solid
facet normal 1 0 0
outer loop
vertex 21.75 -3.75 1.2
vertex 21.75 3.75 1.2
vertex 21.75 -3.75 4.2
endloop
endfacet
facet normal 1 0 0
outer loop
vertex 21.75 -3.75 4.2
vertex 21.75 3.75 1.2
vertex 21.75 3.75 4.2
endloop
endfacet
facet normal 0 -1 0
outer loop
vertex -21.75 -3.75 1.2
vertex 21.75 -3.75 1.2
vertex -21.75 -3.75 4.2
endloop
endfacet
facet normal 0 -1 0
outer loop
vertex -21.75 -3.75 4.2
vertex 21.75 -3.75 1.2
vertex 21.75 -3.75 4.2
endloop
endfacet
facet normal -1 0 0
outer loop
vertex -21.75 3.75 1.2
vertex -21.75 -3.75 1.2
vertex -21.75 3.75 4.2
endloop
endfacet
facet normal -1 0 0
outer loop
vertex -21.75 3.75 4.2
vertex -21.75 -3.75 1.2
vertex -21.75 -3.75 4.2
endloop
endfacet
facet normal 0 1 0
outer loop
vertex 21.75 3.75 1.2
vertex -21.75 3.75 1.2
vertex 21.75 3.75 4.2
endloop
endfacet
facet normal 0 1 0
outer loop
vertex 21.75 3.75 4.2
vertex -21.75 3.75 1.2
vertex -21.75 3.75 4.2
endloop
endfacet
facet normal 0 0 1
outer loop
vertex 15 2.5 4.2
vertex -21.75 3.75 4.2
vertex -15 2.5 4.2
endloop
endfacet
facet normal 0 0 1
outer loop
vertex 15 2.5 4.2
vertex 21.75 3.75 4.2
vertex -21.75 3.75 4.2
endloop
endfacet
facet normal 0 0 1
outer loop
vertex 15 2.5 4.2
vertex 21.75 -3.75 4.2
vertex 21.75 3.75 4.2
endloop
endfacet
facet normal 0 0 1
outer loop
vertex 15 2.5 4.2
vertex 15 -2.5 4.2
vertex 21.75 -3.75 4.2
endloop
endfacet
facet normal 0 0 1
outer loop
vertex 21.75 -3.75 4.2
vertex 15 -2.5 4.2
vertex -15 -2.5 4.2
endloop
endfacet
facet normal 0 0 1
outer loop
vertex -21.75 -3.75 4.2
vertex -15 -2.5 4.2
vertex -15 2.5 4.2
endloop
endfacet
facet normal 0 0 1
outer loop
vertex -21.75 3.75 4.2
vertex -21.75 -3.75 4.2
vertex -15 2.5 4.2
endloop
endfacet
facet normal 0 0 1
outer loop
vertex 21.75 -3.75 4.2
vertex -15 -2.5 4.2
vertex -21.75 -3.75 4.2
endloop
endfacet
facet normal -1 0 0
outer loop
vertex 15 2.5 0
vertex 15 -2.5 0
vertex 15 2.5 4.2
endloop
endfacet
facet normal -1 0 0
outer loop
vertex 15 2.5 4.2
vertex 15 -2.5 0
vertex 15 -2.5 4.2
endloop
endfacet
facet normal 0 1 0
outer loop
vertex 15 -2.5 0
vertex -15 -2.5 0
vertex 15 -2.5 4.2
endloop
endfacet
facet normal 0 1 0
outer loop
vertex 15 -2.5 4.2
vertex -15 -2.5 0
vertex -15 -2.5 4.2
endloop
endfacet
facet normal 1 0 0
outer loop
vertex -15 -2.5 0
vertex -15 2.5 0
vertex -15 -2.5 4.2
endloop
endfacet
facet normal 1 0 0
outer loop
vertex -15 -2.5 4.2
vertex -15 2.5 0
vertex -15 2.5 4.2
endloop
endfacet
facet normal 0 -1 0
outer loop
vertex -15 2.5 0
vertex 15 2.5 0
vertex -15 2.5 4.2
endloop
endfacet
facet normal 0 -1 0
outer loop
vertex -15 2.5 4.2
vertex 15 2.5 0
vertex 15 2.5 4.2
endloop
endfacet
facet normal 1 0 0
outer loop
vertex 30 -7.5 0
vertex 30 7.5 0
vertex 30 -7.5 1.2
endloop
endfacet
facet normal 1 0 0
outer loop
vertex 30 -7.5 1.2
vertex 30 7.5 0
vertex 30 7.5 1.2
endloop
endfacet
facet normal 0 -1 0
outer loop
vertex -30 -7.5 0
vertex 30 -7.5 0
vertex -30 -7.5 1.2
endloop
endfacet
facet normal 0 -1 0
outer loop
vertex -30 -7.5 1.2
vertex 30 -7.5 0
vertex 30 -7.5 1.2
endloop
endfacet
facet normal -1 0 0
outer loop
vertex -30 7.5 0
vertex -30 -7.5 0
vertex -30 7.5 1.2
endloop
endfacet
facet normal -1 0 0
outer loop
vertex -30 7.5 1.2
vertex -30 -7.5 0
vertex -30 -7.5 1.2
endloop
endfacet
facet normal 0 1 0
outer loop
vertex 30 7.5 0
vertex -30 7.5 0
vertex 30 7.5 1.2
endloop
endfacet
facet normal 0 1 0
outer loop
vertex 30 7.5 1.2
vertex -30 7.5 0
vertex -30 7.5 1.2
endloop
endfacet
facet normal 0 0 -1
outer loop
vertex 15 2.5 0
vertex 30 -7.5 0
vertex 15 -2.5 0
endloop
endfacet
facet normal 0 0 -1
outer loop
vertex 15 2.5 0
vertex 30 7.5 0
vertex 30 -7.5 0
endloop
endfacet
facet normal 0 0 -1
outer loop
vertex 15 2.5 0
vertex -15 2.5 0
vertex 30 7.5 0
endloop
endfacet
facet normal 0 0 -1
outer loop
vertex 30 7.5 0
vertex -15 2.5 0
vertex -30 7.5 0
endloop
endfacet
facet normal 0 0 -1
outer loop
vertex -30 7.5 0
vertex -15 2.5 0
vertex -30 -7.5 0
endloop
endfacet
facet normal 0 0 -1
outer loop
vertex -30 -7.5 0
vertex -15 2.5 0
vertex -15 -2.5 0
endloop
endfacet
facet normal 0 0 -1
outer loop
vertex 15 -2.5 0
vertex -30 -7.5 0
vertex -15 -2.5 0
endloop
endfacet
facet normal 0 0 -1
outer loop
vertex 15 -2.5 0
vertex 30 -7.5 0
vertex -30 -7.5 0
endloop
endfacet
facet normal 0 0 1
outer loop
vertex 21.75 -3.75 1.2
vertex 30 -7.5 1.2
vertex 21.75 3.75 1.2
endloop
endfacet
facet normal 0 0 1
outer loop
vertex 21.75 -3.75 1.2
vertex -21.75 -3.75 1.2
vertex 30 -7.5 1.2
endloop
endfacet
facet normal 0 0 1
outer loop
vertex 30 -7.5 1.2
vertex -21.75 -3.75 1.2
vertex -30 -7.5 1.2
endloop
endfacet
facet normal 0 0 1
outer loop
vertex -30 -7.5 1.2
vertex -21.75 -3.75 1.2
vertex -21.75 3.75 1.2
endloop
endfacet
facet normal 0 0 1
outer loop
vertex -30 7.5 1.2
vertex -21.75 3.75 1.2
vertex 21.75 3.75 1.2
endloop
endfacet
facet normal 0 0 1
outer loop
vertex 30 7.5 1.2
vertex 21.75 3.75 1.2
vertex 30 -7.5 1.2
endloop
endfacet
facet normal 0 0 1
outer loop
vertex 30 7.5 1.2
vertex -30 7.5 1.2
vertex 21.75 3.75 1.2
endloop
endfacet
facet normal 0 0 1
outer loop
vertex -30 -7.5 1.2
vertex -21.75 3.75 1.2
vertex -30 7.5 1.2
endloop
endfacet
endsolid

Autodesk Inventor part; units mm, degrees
ref_plane "YZ Plane" through (0, 0, 0) normal (1, 0, 0) x (0, 1, 0)
ref_plane "XZ Plane" through (0, 0, 0) normal (0, 1, 0) x (-1, 0, 0)
ref_plane "XY Plane" through (0, 0, 0) normal (0, 0, 1) x (1, 0, 0)
sketch "Sketch1" plane through (0, 0, 0) normal (0, 0, 1) x (1, 0, 0)
  line L0 (-30, 7.5) -> (30, 7.5)
  line L1 (30, 7.5) -> (30, -7.5)
  line L2 (30, -7.5) -> (-30, -7.5)
  line L3 (-30, -7.5) -> (-30, 7.5)
  line L4 (-42, 0) -> (42, 0) projected
  line L5 (0, -10.5) -> (0, 10.5) projected
  line L6 (-15, 2.5) -> (15, 2.5)
  line L7 (15, 2.5) -> (15, -2.5)
  line L8 (15, -2.5) -> (-15, -2.5)
  line L9 (-15, -2.5) -> (-15, 2.5)
  point P0 (0, 0)
  dimension "d0" = 30
  dimension "d1" = 5
  dimension "d2" = 60
  dimension "d3" = 15
extrude "Extrusion1" add sketch "Sketch1" along normal blind 1.2 contours L0 L5 L6 L9 L4 L3 | L0 L1 L4 L7 L6 L5 | L4 L9 L8 L5 L2 L3 | L1 L2 L5 L8 L7 L4
sketch "Sketch2" plane through (0, 0, 1.2) normal (0, 0, 1) x (1, 0, 0)
  line L0 (0, -10.5) -> (0, 10.5) projected
  line L1 (-42, 0) -> (42, 0) projected
  line L2 (-21.75, 3.75) -> (21.75, 3.75)
  line L3 (21.75, 3.75) -> (21.75, -3.75)
  line L4 (21.75, -3.75) -> (-21.75, -3.75)
  line L5 (-21.75, -3.75) -> (-21.75, 3.75)
  line L6 (-15, -2.5) -> (-15, 2.5) projected
  line L7 (-15, 2.5) -> (15, 2.5) projected
  line L8 (15, -2.5) -> (-15, -2.5) projected
  line L9 (15, 2.5) -> (15, -2.5) projected
  point P0 (0, 0)
  dimension "d6" = 43.5
  dimension "d7" = 7.5
extrude "Extrusion2" add sketch "Sketch2" along normal blind 3 contours L4 L5 L1 L6 L8 L0 | L0 L8 L9 L1 L3 L4 | L1 L9 L7 L0 L2 L3 | L5 L2 L0 L7 L6 L1
